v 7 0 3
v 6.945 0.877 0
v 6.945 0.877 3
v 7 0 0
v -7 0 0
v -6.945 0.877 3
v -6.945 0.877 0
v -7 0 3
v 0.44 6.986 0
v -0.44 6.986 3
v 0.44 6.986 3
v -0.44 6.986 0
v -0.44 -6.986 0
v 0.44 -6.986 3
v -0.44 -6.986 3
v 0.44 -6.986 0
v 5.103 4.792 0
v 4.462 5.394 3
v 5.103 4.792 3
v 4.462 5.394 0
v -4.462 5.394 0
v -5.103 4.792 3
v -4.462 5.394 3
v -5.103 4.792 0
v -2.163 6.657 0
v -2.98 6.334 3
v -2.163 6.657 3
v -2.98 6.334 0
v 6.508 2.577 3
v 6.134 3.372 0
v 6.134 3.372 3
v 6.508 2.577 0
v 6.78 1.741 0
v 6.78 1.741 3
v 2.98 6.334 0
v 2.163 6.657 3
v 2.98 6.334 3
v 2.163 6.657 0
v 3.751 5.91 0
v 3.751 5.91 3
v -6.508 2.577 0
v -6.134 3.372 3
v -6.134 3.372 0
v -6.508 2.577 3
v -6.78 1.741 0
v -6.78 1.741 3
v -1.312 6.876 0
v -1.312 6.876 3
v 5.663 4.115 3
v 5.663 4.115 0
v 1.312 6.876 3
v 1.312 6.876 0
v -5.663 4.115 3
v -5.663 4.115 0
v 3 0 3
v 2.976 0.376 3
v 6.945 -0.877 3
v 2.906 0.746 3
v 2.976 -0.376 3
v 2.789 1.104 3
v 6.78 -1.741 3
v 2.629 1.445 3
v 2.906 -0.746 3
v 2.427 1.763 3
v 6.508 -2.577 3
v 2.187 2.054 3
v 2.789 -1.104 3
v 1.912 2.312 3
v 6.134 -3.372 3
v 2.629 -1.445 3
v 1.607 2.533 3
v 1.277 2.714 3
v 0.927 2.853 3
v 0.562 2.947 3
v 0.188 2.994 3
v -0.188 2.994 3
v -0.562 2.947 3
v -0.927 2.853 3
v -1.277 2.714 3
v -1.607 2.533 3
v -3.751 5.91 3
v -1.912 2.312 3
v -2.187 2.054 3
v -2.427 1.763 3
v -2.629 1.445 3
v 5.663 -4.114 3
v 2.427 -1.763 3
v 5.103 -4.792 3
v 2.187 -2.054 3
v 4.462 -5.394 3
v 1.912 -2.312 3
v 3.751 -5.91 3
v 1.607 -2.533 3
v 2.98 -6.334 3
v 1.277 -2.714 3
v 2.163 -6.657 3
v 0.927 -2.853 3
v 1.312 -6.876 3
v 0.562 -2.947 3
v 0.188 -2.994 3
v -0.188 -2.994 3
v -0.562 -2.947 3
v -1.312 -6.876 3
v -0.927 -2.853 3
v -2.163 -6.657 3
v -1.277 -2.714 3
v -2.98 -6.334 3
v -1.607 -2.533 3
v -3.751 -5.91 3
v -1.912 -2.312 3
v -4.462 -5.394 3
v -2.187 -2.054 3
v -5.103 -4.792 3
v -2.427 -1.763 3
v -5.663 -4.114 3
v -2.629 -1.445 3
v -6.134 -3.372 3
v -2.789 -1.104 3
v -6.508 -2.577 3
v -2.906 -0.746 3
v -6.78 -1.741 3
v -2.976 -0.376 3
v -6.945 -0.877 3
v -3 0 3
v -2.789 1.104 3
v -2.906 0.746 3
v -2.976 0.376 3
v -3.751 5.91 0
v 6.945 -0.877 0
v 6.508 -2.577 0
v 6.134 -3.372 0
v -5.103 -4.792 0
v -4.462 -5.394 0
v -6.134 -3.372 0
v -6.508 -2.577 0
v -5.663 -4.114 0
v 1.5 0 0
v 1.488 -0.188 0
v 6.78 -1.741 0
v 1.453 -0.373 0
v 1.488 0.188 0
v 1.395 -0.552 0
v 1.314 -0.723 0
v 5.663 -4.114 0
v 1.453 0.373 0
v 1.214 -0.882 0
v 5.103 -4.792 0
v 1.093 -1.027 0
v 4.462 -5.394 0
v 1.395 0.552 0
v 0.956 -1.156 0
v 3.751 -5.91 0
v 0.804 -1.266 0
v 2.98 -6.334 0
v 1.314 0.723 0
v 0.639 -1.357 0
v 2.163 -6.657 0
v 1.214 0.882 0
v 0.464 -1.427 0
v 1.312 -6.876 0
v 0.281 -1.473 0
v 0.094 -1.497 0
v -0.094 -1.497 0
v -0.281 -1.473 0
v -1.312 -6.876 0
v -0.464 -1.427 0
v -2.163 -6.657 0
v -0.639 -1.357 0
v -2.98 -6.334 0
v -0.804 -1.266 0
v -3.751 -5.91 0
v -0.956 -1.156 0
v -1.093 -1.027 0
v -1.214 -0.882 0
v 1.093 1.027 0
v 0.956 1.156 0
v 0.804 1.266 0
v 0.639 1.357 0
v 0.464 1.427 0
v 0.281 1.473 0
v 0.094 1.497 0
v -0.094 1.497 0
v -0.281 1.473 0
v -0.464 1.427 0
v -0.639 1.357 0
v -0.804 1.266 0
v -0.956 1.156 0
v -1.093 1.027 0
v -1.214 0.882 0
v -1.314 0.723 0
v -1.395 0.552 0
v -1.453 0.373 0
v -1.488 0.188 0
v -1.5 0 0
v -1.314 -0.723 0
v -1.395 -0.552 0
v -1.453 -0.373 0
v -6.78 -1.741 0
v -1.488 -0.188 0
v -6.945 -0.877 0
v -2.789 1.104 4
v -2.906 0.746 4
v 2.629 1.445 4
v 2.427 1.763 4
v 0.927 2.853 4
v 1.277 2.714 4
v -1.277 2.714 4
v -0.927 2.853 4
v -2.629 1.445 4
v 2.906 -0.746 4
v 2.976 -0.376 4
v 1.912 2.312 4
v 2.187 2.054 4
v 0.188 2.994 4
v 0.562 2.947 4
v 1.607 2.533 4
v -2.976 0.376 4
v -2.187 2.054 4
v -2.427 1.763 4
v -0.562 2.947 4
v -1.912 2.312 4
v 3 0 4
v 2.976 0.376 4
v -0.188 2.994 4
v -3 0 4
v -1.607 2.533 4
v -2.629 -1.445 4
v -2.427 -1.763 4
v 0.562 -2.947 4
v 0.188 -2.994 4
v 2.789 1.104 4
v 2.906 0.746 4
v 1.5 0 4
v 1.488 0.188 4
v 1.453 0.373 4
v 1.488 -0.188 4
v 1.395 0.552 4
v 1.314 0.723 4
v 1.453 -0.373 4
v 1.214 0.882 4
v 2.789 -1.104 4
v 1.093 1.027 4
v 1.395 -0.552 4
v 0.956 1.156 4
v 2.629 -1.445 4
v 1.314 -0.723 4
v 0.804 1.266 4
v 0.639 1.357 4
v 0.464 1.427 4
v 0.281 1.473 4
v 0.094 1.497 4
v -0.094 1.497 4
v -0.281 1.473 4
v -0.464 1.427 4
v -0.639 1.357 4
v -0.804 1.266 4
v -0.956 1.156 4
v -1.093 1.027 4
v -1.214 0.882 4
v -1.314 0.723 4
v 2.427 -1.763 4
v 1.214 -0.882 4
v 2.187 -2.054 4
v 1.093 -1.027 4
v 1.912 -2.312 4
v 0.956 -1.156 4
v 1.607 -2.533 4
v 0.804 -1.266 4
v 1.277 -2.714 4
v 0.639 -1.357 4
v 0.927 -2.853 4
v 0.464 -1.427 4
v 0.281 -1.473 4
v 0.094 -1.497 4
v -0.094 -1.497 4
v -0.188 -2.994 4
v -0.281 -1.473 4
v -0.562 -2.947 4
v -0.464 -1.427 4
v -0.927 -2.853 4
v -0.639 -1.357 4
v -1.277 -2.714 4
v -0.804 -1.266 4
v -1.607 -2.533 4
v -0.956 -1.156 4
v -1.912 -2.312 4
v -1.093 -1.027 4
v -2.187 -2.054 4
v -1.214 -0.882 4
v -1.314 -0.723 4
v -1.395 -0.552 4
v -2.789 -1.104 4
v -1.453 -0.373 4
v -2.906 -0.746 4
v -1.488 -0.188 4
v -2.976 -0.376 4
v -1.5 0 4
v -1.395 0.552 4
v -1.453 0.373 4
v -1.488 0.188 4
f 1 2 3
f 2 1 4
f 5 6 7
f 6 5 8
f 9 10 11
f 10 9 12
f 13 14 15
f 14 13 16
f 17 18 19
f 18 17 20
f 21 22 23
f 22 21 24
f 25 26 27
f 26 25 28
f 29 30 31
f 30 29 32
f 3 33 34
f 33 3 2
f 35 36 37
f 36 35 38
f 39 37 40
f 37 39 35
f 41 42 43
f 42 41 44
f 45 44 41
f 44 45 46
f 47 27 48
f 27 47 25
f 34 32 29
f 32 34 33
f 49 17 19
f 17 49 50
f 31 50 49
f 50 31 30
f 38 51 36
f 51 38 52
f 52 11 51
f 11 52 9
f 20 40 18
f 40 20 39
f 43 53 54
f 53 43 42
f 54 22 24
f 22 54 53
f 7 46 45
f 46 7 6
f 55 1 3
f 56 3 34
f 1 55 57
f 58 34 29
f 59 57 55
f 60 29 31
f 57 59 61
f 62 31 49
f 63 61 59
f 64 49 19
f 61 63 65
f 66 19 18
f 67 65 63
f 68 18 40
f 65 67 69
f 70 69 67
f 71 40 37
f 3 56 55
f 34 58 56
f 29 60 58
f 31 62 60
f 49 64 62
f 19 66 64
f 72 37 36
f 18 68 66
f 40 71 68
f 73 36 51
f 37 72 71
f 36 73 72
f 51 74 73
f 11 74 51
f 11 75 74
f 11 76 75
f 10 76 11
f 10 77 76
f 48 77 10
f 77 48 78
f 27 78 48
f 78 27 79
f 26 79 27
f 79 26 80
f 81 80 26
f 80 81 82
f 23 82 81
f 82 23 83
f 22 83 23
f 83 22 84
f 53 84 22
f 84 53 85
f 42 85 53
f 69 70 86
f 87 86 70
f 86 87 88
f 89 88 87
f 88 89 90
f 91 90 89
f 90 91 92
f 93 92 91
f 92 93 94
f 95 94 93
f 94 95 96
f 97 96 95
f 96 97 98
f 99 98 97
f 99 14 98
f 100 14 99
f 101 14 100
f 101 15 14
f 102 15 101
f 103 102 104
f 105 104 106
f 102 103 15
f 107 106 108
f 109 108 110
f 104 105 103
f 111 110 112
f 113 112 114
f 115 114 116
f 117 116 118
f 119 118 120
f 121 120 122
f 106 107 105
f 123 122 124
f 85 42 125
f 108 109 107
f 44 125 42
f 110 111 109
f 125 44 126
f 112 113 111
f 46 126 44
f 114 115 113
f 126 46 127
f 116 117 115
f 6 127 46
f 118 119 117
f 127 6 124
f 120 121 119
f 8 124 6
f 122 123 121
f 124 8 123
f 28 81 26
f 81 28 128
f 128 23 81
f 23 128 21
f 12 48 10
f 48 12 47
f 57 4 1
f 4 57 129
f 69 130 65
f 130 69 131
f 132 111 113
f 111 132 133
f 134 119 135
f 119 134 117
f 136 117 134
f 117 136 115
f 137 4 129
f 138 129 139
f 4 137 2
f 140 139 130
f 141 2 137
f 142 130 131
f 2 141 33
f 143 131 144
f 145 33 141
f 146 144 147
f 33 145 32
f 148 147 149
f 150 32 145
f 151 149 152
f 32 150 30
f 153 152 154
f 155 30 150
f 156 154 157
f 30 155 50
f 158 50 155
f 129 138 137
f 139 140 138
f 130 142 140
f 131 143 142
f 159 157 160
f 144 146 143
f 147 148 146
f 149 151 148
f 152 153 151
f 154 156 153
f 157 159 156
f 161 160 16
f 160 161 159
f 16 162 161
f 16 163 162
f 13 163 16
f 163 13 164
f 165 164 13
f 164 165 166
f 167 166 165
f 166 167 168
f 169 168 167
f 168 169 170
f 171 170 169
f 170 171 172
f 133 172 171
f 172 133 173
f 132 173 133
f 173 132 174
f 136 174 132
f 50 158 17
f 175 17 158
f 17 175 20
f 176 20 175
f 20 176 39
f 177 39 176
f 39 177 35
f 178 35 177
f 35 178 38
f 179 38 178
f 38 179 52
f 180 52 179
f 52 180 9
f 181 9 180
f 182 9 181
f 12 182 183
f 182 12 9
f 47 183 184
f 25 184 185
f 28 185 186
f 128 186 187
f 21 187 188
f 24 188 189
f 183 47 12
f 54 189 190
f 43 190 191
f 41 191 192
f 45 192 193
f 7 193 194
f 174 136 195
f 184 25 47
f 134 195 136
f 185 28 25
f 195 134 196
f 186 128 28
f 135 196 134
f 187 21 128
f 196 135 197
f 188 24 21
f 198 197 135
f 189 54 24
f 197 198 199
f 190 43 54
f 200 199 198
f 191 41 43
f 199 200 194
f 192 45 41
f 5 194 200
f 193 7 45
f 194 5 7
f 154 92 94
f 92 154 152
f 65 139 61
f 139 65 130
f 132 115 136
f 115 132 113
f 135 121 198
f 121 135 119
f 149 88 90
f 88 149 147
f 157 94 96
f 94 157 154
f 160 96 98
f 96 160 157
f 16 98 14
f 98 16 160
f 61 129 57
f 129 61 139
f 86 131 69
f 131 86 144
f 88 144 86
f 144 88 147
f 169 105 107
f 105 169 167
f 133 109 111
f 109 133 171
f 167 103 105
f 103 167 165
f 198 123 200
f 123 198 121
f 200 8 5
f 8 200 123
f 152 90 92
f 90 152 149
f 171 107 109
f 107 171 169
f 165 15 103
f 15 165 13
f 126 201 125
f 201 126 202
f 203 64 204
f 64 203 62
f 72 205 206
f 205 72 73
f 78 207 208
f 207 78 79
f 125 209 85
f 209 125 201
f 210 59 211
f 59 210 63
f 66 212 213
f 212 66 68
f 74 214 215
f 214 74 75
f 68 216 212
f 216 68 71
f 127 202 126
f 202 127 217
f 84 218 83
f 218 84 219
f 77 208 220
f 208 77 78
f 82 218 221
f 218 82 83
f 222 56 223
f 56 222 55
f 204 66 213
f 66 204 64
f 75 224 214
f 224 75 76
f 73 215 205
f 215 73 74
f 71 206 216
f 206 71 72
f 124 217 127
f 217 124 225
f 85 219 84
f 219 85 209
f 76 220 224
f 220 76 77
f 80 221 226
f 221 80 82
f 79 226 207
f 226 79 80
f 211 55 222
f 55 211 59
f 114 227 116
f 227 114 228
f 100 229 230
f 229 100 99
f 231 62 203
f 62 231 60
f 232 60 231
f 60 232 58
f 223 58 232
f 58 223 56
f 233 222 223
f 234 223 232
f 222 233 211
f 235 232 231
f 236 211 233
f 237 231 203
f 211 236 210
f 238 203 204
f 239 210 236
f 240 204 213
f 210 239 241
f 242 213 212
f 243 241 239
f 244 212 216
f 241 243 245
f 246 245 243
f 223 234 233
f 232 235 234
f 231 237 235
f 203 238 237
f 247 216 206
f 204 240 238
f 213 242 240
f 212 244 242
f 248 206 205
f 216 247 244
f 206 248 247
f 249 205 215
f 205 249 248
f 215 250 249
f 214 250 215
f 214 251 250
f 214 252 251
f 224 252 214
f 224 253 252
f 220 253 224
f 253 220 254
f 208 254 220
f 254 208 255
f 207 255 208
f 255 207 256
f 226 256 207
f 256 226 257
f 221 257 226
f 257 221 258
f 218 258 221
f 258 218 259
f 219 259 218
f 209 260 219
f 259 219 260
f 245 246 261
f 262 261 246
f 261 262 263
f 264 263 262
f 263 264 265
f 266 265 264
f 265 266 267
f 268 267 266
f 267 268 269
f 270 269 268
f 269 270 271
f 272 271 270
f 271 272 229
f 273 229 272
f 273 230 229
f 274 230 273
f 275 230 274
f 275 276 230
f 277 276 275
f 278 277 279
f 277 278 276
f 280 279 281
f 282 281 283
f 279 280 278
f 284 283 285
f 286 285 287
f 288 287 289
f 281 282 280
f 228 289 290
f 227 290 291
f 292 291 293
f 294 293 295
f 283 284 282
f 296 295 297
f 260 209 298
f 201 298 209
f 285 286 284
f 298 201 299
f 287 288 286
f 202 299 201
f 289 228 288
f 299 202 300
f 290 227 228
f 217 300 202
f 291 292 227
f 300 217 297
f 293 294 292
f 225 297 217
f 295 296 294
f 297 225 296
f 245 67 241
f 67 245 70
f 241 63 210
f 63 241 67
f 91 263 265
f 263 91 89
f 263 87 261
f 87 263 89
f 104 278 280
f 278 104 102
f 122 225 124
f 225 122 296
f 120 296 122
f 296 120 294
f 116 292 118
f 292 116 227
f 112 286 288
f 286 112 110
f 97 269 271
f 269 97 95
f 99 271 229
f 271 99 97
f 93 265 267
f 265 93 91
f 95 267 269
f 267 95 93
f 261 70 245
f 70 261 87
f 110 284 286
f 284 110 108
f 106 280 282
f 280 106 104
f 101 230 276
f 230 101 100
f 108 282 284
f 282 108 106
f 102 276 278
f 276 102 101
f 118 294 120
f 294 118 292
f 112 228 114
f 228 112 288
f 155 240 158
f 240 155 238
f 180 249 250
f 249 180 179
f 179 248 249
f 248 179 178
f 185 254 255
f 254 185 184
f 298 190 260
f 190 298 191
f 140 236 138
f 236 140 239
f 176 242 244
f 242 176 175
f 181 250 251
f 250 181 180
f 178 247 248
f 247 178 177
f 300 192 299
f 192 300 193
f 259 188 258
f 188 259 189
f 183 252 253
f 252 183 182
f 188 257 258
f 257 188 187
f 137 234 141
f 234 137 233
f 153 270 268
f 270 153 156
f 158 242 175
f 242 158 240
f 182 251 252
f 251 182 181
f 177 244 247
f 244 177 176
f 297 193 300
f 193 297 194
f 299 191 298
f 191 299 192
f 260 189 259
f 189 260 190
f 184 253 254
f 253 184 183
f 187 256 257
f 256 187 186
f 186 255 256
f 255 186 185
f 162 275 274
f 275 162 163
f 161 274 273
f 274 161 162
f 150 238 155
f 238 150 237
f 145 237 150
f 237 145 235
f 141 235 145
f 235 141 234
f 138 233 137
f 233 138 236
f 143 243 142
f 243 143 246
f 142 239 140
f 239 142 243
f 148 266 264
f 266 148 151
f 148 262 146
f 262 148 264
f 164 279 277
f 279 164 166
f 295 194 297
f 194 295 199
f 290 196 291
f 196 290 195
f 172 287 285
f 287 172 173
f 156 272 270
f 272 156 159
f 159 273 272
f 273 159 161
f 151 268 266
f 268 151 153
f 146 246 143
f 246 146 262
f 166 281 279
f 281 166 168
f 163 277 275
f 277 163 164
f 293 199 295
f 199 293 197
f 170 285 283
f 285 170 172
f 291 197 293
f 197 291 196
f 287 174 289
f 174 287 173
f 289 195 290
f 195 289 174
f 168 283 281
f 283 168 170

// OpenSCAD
$fn = 50;


difference() {
	union() {
		translate(v = [0, 0, 0]) {
			rotate(a = [0, 0, 0]) {
				cylinder(h = 3, r = 7.0000000000);
			}
		}
		translate(v = [0, 0, 0]) {
			rotate(a = [0, 0, 0]) {
				cylinder(h = 4, r = 3.0000000000);
			}
		}
	}
	union() {
		translate(v = [0, 0, -125.0000000000]) {
			rotate(a = [0, 0, 0]) {
				cylinder(h = 250, r = 1.5000000000);
			}
		}
	}
}
